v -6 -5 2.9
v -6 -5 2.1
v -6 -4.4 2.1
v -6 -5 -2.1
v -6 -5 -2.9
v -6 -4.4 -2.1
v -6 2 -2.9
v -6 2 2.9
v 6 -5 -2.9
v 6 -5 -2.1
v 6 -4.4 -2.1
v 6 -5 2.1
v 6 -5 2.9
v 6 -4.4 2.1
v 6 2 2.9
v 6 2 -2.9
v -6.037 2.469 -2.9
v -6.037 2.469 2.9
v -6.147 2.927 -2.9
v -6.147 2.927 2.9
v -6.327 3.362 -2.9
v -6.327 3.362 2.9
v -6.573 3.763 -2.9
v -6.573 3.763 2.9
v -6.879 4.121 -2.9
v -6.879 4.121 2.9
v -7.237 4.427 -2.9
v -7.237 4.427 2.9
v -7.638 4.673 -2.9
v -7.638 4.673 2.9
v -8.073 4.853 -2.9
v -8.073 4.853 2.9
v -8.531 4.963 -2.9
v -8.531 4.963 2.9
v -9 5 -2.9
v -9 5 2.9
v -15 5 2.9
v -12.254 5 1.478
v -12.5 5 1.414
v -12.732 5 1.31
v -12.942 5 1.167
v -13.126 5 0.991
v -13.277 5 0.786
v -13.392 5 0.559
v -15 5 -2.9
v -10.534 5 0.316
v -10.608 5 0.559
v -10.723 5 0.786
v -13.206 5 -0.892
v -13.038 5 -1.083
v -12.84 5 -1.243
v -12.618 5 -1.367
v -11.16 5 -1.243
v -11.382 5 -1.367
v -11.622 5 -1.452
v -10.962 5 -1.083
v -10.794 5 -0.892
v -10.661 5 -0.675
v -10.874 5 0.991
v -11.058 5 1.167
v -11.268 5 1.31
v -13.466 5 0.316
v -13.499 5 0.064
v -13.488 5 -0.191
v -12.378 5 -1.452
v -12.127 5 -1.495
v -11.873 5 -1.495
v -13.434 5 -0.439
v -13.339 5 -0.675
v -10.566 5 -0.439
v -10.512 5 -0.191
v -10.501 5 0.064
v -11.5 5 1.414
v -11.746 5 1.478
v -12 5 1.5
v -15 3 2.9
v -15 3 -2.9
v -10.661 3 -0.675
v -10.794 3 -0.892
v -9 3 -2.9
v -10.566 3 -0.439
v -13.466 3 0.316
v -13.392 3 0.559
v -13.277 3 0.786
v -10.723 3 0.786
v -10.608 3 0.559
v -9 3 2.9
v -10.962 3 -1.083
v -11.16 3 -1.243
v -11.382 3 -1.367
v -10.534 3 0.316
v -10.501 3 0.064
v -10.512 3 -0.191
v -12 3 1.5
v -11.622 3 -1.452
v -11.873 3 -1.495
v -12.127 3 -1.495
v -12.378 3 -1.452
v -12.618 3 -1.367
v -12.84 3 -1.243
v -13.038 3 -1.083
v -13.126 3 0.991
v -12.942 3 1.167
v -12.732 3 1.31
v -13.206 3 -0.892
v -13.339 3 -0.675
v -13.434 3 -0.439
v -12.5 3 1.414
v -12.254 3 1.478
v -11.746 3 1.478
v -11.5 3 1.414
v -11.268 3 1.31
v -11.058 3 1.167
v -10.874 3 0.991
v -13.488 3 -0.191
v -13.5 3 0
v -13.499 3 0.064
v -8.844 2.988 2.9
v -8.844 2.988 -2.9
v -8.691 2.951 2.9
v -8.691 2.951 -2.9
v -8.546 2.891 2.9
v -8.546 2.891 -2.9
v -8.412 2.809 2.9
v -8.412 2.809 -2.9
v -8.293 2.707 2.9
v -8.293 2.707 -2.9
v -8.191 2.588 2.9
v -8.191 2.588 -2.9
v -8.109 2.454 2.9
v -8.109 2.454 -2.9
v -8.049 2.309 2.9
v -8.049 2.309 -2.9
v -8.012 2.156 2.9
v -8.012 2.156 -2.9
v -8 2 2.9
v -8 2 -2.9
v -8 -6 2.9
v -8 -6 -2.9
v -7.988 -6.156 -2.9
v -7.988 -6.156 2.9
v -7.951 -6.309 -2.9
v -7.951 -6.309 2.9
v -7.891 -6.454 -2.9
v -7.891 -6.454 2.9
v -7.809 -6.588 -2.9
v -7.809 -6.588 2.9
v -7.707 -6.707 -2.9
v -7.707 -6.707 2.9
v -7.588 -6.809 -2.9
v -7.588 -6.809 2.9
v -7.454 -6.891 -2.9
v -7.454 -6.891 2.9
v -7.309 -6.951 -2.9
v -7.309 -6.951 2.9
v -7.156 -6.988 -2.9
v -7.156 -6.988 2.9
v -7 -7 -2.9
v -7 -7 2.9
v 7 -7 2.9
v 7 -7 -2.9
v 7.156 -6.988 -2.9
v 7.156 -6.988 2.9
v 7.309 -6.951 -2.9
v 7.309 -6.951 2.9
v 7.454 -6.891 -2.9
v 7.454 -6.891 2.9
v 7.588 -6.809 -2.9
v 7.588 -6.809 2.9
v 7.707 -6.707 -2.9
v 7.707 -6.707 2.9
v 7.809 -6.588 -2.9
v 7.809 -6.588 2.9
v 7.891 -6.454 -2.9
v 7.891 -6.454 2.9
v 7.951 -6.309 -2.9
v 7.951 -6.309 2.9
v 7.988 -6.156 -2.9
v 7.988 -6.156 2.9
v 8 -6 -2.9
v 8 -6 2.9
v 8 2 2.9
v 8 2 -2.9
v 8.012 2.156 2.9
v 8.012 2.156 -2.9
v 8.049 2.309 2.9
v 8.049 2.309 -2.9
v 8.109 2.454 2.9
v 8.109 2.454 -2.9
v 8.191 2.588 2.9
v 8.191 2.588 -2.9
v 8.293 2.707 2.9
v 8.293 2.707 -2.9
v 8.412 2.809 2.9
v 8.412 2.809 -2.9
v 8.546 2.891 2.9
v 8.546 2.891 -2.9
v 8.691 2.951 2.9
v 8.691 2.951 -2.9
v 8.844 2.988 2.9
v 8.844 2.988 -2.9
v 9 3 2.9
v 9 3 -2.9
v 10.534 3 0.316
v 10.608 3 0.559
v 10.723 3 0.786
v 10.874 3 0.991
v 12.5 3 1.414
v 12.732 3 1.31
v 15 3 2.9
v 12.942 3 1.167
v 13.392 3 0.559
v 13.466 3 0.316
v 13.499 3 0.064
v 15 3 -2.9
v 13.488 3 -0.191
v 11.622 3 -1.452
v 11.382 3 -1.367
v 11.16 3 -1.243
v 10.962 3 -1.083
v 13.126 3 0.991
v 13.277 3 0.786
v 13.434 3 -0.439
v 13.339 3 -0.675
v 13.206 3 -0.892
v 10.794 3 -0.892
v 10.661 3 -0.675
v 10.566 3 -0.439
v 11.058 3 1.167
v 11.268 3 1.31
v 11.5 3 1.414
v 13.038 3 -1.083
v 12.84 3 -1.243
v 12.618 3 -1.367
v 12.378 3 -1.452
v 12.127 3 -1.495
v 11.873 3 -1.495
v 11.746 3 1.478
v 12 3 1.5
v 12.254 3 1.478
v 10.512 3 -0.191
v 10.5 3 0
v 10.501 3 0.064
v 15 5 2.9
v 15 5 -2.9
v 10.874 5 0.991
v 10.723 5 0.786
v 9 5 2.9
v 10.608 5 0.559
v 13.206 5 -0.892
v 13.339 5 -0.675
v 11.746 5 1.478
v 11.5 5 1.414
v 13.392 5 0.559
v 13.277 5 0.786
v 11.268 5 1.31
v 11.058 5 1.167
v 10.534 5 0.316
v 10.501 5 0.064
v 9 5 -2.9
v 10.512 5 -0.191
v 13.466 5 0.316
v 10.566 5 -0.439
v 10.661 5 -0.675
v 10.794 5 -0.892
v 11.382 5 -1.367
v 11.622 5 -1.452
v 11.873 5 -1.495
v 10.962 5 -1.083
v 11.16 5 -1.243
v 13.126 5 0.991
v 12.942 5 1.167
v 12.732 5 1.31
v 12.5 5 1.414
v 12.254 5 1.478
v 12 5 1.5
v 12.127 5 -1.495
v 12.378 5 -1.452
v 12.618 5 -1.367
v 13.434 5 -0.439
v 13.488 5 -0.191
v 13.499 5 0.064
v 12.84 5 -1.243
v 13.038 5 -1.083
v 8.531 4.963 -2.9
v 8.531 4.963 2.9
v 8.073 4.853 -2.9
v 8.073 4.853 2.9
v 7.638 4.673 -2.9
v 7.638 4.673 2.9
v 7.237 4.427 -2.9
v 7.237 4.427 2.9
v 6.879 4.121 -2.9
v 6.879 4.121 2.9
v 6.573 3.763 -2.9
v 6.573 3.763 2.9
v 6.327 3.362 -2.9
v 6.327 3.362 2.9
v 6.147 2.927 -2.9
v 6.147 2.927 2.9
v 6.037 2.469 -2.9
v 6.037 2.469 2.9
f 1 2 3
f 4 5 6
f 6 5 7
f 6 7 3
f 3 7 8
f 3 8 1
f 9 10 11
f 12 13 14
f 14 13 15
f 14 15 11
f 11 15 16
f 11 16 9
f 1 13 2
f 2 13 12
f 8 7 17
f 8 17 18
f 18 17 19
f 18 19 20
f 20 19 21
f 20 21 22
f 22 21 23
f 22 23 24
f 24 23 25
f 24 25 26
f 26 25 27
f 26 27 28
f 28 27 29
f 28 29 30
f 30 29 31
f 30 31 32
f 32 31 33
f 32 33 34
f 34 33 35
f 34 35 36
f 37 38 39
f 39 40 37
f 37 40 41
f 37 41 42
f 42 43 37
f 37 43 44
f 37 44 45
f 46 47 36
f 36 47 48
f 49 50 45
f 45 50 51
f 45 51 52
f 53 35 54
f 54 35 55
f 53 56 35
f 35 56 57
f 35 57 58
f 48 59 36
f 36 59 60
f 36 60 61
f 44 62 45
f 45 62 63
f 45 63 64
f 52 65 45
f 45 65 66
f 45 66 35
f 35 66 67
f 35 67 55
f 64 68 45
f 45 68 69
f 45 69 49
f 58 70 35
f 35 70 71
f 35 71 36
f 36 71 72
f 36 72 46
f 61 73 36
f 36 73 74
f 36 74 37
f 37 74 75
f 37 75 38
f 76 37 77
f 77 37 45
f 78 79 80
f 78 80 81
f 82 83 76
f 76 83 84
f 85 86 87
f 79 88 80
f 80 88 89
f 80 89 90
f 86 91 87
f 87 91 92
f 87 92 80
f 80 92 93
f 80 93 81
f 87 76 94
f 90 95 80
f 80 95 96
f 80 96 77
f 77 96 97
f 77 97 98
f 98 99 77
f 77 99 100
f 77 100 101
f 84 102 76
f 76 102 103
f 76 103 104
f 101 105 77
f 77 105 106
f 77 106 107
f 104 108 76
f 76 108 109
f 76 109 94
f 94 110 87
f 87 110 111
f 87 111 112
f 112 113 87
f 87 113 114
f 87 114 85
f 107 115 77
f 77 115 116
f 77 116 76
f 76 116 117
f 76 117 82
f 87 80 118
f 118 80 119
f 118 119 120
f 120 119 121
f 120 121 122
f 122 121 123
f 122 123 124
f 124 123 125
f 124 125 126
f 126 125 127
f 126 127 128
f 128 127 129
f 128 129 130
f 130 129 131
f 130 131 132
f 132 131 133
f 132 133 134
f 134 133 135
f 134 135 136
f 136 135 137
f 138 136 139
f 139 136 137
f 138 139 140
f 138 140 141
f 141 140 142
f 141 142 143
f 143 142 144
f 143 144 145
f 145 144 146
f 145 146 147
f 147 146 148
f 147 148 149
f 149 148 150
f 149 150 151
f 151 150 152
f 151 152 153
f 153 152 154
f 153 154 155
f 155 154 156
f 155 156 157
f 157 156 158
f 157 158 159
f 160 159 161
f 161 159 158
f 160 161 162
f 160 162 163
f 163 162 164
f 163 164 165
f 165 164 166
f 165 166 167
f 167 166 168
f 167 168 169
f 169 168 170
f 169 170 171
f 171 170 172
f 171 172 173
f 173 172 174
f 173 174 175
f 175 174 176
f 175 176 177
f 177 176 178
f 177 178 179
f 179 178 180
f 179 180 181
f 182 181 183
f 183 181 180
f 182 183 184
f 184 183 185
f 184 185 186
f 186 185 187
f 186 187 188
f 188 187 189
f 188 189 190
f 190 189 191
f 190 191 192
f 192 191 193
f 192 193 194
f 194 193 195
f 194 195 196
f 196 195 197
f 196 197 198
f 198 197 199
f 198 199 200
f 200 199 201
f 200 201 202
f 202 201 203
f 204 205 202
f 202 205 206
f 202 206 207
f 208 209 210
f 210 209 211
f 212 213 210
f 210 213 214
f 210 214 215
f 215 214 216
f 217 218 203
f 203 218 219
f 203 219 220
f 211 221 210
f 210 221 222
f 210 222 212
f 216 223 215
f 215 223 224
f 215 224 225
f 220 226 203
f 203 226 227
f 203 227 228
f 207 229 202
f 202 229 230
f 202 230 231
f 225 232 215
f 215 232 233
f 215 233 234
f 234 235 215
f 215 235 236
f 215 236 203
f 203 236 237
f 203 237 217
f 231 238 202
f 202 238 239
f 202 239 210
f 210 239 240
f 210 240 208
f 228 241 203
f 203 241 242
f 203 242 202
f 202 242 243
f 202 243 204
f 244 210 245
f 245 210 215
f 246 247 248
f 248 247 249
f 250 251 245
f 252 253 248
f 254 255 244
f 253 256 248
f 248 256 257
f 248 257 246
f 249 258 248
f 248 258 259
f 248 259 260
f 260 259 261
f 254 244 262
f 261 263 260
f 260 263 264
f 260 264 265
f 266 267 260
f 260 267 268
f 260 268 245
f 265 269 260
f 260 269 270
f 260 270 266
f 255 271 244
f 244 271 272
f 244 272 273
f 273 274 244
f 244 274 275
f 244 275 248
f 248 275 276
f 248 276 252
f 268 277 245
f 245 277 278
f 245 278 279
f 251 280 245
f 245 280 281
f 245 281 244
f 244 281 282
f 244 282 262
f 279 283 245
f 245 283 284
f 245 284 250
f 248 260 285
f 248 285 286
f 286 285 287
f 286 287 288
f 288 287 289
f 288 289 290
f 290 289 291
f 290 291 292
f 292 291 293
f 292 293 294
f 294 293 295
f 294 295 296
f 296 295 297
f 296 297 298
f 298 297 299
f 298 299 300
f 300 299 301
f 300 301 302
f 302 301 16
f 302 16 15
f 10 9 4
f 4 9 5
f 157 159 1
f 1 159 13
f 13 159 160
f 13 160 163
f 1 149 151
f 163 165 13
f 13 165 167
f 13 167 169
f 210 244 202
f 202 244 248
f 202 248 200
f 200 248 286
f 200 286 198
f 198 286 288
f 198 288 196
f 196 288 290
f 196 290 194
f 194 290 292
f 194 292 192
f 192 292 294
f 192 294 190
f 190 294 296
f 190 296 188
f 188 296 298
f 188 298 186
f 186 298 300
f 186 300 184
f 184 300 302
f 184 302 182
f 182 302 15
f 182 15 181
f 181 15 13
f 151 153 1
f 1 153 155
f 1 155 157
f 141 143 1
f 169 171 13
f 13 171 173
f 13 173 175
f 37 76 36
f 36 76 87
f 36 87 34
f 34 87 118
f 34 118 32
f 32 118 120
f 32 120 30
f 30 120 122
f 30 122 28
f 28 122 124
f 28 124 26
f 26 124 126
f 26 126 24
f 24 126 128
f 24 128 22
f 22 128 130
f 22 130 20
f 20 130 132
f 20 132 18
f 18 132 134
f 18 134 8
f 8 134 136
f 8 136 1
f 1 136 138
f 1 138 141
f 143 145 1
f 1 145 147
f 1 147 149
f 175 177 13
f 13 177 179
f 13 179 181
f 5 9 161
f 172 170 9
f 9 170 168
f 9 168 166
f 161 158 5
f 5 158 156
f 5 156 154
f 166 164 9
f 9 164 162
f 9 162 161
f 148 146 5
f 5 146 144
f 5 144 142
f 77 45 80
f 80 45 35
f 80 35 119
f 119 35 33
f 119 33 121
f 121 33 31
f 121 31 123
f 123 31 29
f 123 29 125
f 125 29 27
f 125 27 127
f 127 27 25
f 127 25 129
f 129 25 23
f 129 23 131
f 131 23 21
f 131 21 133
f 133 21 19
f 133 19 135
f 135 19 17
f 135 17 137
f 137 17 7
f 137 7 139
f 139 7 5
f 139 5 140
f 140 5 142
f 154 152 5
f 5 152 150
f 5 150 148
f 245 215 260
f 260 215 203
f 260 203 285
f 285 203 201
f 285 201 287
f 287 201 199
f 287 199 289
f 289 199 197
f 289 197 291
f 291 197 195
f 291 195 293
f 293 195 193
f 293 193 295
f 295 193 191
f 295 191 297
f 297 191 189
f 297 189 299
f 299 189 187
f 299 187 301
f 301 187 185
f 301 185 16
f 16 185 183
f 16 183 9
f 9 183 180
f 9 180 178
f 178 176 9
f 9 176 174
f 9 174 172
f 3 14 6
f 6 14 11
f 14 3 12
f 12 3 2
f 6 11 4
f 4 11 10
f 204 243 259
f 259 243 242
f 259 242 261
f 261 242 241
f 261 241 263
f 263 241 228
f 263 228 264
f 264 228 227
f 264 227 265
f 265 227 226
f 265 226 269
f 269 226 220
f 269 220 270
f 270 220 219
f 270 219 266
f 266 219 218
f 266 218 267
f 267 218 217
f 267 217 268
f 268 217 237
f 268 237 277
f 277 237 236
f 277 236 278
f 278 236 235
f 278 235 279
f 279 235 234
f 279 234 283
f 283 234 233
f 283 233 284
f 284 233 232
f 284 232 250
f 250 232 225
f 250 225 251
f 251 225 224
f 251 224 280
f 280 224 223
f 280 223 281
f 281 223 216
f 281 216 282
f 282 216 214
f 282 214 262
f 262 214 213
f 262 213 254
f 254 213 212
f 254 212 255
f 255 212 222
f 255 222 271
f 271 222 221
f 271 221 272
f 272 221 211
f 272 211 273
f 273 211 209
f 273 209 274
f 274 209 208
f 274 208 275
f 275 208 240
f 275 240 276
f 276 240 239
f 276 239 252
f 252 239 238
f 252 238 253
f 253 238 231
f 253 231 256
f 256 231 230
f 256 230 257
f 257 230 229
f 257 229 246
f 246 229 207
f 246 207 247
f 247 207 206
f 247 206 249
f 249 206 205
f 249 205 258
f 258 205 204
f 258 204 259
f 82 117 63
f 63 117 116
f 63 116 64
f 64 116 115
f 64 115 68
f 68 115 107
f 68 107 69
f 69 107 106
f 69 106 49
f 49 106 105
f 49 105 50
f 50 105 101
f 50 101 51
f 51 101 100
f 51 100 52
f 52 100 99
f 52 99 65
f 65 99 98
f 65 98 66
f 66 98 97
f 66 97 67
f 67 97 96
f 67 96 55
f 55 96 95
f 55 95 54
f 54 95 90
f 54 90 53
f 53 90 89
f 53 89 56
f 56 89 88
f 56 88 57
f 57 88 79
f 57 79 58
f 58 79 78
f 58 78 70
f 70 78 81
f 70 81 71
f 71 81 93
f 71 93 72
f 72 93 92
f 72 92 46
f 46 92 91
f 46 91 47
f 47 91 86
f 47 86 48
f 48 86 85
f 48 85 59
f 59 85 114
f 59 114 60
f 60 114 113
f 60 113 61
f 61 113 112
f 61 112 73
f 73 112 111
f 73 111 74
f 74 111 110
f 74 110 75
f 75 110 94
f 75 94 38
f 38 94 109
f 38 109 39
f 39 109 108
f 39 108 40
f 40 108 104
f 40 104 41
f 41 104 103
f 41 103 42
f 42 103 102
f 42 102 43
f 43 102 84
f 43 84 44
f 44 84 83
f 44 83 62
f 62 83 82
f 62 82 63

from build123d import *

# Parameters (mm, degrees)
BOSS_EXTRUDE1_DEPTH = 2.9
SKETCH4_W           = 12
SKETCH4_H           = 0.6
BOSS_EXTRUDE2_DEPTH = 2.1
SKETCH5_R           = 1.5
CUT_EXTRUDE1_DEPTH  = 13


with BuildPart() as part:
    # Sketch3 → Boss-Extrude1 (new body, symmetric)
    with BuildSketch(Plane.XY):
        with BuildLine():
            Line((-6, -5), (6, -5))
            Line((6, -5), (6, 2))
            ThreePointArc((6, 2), (6.878679656, 4.121320344), (9, 5))
            Line((9, 5), (15, 5))
            Line((15, 5), (15, 3))
            Line((15, 3), (9, 3))
            ThreePointArc((9, 3), (8.292893219, 2.707106781), (8, 2))
            Line((8, 2), (8, -6))
            ThreePointArc((8, -6), (7.707106781, -6.707106781), (7, -7))
            Line((7, -7), (-7, -7))
            ThreePointArc((-7, -7), (-7.707106781, -6.707106781), (-8, -6))
            Line((-8, -6), (-8, 2))
            ThreePointArc((-8, 2), (-8.292893219, 2.707106781), (-9, 3))
            Line((-9, 3), (-15, 3))
            Line((-15, 3), (-15, 5))
            Line((-15, 5), (-9, 5))
            ThreePointArc((-9, 5), (-6.878679656, 4.121320344), (-6, 2))
            Line((-6, 2), (-6, -5))
        make_face()
    extrude(amount=BOSS_EXTRUDE1_DEPTH, both=True)

    # Sketch4 → Boss-Extrude2 (add, symmetric)
    with BuildSketch(Plane.XY):
        with Locations((0, -4.7)):
            Rectangle(SKETCH4_W, SKETCH4_H)
    extrude(amount=BOSS_EXTRUDE2_DEPTH, both=True)

    # Sketch5 → Cut-Extrude1 (cut, through all)
    with BuildSketch(Plane(origin=(0, 5, 0), x_dir=(1, 0, 0), z_dir=(0, 1, 0))):
        with Locations((12, 0)):
            Circle(SKETCH5_R)
        with Locations((-12, 0)):
            Circle(SKETCH5_R)
    extrude(amount=-CUT_EXTRUDE1_DEPTH, mode=Mode.SUBTRACT)


solid = part.part
